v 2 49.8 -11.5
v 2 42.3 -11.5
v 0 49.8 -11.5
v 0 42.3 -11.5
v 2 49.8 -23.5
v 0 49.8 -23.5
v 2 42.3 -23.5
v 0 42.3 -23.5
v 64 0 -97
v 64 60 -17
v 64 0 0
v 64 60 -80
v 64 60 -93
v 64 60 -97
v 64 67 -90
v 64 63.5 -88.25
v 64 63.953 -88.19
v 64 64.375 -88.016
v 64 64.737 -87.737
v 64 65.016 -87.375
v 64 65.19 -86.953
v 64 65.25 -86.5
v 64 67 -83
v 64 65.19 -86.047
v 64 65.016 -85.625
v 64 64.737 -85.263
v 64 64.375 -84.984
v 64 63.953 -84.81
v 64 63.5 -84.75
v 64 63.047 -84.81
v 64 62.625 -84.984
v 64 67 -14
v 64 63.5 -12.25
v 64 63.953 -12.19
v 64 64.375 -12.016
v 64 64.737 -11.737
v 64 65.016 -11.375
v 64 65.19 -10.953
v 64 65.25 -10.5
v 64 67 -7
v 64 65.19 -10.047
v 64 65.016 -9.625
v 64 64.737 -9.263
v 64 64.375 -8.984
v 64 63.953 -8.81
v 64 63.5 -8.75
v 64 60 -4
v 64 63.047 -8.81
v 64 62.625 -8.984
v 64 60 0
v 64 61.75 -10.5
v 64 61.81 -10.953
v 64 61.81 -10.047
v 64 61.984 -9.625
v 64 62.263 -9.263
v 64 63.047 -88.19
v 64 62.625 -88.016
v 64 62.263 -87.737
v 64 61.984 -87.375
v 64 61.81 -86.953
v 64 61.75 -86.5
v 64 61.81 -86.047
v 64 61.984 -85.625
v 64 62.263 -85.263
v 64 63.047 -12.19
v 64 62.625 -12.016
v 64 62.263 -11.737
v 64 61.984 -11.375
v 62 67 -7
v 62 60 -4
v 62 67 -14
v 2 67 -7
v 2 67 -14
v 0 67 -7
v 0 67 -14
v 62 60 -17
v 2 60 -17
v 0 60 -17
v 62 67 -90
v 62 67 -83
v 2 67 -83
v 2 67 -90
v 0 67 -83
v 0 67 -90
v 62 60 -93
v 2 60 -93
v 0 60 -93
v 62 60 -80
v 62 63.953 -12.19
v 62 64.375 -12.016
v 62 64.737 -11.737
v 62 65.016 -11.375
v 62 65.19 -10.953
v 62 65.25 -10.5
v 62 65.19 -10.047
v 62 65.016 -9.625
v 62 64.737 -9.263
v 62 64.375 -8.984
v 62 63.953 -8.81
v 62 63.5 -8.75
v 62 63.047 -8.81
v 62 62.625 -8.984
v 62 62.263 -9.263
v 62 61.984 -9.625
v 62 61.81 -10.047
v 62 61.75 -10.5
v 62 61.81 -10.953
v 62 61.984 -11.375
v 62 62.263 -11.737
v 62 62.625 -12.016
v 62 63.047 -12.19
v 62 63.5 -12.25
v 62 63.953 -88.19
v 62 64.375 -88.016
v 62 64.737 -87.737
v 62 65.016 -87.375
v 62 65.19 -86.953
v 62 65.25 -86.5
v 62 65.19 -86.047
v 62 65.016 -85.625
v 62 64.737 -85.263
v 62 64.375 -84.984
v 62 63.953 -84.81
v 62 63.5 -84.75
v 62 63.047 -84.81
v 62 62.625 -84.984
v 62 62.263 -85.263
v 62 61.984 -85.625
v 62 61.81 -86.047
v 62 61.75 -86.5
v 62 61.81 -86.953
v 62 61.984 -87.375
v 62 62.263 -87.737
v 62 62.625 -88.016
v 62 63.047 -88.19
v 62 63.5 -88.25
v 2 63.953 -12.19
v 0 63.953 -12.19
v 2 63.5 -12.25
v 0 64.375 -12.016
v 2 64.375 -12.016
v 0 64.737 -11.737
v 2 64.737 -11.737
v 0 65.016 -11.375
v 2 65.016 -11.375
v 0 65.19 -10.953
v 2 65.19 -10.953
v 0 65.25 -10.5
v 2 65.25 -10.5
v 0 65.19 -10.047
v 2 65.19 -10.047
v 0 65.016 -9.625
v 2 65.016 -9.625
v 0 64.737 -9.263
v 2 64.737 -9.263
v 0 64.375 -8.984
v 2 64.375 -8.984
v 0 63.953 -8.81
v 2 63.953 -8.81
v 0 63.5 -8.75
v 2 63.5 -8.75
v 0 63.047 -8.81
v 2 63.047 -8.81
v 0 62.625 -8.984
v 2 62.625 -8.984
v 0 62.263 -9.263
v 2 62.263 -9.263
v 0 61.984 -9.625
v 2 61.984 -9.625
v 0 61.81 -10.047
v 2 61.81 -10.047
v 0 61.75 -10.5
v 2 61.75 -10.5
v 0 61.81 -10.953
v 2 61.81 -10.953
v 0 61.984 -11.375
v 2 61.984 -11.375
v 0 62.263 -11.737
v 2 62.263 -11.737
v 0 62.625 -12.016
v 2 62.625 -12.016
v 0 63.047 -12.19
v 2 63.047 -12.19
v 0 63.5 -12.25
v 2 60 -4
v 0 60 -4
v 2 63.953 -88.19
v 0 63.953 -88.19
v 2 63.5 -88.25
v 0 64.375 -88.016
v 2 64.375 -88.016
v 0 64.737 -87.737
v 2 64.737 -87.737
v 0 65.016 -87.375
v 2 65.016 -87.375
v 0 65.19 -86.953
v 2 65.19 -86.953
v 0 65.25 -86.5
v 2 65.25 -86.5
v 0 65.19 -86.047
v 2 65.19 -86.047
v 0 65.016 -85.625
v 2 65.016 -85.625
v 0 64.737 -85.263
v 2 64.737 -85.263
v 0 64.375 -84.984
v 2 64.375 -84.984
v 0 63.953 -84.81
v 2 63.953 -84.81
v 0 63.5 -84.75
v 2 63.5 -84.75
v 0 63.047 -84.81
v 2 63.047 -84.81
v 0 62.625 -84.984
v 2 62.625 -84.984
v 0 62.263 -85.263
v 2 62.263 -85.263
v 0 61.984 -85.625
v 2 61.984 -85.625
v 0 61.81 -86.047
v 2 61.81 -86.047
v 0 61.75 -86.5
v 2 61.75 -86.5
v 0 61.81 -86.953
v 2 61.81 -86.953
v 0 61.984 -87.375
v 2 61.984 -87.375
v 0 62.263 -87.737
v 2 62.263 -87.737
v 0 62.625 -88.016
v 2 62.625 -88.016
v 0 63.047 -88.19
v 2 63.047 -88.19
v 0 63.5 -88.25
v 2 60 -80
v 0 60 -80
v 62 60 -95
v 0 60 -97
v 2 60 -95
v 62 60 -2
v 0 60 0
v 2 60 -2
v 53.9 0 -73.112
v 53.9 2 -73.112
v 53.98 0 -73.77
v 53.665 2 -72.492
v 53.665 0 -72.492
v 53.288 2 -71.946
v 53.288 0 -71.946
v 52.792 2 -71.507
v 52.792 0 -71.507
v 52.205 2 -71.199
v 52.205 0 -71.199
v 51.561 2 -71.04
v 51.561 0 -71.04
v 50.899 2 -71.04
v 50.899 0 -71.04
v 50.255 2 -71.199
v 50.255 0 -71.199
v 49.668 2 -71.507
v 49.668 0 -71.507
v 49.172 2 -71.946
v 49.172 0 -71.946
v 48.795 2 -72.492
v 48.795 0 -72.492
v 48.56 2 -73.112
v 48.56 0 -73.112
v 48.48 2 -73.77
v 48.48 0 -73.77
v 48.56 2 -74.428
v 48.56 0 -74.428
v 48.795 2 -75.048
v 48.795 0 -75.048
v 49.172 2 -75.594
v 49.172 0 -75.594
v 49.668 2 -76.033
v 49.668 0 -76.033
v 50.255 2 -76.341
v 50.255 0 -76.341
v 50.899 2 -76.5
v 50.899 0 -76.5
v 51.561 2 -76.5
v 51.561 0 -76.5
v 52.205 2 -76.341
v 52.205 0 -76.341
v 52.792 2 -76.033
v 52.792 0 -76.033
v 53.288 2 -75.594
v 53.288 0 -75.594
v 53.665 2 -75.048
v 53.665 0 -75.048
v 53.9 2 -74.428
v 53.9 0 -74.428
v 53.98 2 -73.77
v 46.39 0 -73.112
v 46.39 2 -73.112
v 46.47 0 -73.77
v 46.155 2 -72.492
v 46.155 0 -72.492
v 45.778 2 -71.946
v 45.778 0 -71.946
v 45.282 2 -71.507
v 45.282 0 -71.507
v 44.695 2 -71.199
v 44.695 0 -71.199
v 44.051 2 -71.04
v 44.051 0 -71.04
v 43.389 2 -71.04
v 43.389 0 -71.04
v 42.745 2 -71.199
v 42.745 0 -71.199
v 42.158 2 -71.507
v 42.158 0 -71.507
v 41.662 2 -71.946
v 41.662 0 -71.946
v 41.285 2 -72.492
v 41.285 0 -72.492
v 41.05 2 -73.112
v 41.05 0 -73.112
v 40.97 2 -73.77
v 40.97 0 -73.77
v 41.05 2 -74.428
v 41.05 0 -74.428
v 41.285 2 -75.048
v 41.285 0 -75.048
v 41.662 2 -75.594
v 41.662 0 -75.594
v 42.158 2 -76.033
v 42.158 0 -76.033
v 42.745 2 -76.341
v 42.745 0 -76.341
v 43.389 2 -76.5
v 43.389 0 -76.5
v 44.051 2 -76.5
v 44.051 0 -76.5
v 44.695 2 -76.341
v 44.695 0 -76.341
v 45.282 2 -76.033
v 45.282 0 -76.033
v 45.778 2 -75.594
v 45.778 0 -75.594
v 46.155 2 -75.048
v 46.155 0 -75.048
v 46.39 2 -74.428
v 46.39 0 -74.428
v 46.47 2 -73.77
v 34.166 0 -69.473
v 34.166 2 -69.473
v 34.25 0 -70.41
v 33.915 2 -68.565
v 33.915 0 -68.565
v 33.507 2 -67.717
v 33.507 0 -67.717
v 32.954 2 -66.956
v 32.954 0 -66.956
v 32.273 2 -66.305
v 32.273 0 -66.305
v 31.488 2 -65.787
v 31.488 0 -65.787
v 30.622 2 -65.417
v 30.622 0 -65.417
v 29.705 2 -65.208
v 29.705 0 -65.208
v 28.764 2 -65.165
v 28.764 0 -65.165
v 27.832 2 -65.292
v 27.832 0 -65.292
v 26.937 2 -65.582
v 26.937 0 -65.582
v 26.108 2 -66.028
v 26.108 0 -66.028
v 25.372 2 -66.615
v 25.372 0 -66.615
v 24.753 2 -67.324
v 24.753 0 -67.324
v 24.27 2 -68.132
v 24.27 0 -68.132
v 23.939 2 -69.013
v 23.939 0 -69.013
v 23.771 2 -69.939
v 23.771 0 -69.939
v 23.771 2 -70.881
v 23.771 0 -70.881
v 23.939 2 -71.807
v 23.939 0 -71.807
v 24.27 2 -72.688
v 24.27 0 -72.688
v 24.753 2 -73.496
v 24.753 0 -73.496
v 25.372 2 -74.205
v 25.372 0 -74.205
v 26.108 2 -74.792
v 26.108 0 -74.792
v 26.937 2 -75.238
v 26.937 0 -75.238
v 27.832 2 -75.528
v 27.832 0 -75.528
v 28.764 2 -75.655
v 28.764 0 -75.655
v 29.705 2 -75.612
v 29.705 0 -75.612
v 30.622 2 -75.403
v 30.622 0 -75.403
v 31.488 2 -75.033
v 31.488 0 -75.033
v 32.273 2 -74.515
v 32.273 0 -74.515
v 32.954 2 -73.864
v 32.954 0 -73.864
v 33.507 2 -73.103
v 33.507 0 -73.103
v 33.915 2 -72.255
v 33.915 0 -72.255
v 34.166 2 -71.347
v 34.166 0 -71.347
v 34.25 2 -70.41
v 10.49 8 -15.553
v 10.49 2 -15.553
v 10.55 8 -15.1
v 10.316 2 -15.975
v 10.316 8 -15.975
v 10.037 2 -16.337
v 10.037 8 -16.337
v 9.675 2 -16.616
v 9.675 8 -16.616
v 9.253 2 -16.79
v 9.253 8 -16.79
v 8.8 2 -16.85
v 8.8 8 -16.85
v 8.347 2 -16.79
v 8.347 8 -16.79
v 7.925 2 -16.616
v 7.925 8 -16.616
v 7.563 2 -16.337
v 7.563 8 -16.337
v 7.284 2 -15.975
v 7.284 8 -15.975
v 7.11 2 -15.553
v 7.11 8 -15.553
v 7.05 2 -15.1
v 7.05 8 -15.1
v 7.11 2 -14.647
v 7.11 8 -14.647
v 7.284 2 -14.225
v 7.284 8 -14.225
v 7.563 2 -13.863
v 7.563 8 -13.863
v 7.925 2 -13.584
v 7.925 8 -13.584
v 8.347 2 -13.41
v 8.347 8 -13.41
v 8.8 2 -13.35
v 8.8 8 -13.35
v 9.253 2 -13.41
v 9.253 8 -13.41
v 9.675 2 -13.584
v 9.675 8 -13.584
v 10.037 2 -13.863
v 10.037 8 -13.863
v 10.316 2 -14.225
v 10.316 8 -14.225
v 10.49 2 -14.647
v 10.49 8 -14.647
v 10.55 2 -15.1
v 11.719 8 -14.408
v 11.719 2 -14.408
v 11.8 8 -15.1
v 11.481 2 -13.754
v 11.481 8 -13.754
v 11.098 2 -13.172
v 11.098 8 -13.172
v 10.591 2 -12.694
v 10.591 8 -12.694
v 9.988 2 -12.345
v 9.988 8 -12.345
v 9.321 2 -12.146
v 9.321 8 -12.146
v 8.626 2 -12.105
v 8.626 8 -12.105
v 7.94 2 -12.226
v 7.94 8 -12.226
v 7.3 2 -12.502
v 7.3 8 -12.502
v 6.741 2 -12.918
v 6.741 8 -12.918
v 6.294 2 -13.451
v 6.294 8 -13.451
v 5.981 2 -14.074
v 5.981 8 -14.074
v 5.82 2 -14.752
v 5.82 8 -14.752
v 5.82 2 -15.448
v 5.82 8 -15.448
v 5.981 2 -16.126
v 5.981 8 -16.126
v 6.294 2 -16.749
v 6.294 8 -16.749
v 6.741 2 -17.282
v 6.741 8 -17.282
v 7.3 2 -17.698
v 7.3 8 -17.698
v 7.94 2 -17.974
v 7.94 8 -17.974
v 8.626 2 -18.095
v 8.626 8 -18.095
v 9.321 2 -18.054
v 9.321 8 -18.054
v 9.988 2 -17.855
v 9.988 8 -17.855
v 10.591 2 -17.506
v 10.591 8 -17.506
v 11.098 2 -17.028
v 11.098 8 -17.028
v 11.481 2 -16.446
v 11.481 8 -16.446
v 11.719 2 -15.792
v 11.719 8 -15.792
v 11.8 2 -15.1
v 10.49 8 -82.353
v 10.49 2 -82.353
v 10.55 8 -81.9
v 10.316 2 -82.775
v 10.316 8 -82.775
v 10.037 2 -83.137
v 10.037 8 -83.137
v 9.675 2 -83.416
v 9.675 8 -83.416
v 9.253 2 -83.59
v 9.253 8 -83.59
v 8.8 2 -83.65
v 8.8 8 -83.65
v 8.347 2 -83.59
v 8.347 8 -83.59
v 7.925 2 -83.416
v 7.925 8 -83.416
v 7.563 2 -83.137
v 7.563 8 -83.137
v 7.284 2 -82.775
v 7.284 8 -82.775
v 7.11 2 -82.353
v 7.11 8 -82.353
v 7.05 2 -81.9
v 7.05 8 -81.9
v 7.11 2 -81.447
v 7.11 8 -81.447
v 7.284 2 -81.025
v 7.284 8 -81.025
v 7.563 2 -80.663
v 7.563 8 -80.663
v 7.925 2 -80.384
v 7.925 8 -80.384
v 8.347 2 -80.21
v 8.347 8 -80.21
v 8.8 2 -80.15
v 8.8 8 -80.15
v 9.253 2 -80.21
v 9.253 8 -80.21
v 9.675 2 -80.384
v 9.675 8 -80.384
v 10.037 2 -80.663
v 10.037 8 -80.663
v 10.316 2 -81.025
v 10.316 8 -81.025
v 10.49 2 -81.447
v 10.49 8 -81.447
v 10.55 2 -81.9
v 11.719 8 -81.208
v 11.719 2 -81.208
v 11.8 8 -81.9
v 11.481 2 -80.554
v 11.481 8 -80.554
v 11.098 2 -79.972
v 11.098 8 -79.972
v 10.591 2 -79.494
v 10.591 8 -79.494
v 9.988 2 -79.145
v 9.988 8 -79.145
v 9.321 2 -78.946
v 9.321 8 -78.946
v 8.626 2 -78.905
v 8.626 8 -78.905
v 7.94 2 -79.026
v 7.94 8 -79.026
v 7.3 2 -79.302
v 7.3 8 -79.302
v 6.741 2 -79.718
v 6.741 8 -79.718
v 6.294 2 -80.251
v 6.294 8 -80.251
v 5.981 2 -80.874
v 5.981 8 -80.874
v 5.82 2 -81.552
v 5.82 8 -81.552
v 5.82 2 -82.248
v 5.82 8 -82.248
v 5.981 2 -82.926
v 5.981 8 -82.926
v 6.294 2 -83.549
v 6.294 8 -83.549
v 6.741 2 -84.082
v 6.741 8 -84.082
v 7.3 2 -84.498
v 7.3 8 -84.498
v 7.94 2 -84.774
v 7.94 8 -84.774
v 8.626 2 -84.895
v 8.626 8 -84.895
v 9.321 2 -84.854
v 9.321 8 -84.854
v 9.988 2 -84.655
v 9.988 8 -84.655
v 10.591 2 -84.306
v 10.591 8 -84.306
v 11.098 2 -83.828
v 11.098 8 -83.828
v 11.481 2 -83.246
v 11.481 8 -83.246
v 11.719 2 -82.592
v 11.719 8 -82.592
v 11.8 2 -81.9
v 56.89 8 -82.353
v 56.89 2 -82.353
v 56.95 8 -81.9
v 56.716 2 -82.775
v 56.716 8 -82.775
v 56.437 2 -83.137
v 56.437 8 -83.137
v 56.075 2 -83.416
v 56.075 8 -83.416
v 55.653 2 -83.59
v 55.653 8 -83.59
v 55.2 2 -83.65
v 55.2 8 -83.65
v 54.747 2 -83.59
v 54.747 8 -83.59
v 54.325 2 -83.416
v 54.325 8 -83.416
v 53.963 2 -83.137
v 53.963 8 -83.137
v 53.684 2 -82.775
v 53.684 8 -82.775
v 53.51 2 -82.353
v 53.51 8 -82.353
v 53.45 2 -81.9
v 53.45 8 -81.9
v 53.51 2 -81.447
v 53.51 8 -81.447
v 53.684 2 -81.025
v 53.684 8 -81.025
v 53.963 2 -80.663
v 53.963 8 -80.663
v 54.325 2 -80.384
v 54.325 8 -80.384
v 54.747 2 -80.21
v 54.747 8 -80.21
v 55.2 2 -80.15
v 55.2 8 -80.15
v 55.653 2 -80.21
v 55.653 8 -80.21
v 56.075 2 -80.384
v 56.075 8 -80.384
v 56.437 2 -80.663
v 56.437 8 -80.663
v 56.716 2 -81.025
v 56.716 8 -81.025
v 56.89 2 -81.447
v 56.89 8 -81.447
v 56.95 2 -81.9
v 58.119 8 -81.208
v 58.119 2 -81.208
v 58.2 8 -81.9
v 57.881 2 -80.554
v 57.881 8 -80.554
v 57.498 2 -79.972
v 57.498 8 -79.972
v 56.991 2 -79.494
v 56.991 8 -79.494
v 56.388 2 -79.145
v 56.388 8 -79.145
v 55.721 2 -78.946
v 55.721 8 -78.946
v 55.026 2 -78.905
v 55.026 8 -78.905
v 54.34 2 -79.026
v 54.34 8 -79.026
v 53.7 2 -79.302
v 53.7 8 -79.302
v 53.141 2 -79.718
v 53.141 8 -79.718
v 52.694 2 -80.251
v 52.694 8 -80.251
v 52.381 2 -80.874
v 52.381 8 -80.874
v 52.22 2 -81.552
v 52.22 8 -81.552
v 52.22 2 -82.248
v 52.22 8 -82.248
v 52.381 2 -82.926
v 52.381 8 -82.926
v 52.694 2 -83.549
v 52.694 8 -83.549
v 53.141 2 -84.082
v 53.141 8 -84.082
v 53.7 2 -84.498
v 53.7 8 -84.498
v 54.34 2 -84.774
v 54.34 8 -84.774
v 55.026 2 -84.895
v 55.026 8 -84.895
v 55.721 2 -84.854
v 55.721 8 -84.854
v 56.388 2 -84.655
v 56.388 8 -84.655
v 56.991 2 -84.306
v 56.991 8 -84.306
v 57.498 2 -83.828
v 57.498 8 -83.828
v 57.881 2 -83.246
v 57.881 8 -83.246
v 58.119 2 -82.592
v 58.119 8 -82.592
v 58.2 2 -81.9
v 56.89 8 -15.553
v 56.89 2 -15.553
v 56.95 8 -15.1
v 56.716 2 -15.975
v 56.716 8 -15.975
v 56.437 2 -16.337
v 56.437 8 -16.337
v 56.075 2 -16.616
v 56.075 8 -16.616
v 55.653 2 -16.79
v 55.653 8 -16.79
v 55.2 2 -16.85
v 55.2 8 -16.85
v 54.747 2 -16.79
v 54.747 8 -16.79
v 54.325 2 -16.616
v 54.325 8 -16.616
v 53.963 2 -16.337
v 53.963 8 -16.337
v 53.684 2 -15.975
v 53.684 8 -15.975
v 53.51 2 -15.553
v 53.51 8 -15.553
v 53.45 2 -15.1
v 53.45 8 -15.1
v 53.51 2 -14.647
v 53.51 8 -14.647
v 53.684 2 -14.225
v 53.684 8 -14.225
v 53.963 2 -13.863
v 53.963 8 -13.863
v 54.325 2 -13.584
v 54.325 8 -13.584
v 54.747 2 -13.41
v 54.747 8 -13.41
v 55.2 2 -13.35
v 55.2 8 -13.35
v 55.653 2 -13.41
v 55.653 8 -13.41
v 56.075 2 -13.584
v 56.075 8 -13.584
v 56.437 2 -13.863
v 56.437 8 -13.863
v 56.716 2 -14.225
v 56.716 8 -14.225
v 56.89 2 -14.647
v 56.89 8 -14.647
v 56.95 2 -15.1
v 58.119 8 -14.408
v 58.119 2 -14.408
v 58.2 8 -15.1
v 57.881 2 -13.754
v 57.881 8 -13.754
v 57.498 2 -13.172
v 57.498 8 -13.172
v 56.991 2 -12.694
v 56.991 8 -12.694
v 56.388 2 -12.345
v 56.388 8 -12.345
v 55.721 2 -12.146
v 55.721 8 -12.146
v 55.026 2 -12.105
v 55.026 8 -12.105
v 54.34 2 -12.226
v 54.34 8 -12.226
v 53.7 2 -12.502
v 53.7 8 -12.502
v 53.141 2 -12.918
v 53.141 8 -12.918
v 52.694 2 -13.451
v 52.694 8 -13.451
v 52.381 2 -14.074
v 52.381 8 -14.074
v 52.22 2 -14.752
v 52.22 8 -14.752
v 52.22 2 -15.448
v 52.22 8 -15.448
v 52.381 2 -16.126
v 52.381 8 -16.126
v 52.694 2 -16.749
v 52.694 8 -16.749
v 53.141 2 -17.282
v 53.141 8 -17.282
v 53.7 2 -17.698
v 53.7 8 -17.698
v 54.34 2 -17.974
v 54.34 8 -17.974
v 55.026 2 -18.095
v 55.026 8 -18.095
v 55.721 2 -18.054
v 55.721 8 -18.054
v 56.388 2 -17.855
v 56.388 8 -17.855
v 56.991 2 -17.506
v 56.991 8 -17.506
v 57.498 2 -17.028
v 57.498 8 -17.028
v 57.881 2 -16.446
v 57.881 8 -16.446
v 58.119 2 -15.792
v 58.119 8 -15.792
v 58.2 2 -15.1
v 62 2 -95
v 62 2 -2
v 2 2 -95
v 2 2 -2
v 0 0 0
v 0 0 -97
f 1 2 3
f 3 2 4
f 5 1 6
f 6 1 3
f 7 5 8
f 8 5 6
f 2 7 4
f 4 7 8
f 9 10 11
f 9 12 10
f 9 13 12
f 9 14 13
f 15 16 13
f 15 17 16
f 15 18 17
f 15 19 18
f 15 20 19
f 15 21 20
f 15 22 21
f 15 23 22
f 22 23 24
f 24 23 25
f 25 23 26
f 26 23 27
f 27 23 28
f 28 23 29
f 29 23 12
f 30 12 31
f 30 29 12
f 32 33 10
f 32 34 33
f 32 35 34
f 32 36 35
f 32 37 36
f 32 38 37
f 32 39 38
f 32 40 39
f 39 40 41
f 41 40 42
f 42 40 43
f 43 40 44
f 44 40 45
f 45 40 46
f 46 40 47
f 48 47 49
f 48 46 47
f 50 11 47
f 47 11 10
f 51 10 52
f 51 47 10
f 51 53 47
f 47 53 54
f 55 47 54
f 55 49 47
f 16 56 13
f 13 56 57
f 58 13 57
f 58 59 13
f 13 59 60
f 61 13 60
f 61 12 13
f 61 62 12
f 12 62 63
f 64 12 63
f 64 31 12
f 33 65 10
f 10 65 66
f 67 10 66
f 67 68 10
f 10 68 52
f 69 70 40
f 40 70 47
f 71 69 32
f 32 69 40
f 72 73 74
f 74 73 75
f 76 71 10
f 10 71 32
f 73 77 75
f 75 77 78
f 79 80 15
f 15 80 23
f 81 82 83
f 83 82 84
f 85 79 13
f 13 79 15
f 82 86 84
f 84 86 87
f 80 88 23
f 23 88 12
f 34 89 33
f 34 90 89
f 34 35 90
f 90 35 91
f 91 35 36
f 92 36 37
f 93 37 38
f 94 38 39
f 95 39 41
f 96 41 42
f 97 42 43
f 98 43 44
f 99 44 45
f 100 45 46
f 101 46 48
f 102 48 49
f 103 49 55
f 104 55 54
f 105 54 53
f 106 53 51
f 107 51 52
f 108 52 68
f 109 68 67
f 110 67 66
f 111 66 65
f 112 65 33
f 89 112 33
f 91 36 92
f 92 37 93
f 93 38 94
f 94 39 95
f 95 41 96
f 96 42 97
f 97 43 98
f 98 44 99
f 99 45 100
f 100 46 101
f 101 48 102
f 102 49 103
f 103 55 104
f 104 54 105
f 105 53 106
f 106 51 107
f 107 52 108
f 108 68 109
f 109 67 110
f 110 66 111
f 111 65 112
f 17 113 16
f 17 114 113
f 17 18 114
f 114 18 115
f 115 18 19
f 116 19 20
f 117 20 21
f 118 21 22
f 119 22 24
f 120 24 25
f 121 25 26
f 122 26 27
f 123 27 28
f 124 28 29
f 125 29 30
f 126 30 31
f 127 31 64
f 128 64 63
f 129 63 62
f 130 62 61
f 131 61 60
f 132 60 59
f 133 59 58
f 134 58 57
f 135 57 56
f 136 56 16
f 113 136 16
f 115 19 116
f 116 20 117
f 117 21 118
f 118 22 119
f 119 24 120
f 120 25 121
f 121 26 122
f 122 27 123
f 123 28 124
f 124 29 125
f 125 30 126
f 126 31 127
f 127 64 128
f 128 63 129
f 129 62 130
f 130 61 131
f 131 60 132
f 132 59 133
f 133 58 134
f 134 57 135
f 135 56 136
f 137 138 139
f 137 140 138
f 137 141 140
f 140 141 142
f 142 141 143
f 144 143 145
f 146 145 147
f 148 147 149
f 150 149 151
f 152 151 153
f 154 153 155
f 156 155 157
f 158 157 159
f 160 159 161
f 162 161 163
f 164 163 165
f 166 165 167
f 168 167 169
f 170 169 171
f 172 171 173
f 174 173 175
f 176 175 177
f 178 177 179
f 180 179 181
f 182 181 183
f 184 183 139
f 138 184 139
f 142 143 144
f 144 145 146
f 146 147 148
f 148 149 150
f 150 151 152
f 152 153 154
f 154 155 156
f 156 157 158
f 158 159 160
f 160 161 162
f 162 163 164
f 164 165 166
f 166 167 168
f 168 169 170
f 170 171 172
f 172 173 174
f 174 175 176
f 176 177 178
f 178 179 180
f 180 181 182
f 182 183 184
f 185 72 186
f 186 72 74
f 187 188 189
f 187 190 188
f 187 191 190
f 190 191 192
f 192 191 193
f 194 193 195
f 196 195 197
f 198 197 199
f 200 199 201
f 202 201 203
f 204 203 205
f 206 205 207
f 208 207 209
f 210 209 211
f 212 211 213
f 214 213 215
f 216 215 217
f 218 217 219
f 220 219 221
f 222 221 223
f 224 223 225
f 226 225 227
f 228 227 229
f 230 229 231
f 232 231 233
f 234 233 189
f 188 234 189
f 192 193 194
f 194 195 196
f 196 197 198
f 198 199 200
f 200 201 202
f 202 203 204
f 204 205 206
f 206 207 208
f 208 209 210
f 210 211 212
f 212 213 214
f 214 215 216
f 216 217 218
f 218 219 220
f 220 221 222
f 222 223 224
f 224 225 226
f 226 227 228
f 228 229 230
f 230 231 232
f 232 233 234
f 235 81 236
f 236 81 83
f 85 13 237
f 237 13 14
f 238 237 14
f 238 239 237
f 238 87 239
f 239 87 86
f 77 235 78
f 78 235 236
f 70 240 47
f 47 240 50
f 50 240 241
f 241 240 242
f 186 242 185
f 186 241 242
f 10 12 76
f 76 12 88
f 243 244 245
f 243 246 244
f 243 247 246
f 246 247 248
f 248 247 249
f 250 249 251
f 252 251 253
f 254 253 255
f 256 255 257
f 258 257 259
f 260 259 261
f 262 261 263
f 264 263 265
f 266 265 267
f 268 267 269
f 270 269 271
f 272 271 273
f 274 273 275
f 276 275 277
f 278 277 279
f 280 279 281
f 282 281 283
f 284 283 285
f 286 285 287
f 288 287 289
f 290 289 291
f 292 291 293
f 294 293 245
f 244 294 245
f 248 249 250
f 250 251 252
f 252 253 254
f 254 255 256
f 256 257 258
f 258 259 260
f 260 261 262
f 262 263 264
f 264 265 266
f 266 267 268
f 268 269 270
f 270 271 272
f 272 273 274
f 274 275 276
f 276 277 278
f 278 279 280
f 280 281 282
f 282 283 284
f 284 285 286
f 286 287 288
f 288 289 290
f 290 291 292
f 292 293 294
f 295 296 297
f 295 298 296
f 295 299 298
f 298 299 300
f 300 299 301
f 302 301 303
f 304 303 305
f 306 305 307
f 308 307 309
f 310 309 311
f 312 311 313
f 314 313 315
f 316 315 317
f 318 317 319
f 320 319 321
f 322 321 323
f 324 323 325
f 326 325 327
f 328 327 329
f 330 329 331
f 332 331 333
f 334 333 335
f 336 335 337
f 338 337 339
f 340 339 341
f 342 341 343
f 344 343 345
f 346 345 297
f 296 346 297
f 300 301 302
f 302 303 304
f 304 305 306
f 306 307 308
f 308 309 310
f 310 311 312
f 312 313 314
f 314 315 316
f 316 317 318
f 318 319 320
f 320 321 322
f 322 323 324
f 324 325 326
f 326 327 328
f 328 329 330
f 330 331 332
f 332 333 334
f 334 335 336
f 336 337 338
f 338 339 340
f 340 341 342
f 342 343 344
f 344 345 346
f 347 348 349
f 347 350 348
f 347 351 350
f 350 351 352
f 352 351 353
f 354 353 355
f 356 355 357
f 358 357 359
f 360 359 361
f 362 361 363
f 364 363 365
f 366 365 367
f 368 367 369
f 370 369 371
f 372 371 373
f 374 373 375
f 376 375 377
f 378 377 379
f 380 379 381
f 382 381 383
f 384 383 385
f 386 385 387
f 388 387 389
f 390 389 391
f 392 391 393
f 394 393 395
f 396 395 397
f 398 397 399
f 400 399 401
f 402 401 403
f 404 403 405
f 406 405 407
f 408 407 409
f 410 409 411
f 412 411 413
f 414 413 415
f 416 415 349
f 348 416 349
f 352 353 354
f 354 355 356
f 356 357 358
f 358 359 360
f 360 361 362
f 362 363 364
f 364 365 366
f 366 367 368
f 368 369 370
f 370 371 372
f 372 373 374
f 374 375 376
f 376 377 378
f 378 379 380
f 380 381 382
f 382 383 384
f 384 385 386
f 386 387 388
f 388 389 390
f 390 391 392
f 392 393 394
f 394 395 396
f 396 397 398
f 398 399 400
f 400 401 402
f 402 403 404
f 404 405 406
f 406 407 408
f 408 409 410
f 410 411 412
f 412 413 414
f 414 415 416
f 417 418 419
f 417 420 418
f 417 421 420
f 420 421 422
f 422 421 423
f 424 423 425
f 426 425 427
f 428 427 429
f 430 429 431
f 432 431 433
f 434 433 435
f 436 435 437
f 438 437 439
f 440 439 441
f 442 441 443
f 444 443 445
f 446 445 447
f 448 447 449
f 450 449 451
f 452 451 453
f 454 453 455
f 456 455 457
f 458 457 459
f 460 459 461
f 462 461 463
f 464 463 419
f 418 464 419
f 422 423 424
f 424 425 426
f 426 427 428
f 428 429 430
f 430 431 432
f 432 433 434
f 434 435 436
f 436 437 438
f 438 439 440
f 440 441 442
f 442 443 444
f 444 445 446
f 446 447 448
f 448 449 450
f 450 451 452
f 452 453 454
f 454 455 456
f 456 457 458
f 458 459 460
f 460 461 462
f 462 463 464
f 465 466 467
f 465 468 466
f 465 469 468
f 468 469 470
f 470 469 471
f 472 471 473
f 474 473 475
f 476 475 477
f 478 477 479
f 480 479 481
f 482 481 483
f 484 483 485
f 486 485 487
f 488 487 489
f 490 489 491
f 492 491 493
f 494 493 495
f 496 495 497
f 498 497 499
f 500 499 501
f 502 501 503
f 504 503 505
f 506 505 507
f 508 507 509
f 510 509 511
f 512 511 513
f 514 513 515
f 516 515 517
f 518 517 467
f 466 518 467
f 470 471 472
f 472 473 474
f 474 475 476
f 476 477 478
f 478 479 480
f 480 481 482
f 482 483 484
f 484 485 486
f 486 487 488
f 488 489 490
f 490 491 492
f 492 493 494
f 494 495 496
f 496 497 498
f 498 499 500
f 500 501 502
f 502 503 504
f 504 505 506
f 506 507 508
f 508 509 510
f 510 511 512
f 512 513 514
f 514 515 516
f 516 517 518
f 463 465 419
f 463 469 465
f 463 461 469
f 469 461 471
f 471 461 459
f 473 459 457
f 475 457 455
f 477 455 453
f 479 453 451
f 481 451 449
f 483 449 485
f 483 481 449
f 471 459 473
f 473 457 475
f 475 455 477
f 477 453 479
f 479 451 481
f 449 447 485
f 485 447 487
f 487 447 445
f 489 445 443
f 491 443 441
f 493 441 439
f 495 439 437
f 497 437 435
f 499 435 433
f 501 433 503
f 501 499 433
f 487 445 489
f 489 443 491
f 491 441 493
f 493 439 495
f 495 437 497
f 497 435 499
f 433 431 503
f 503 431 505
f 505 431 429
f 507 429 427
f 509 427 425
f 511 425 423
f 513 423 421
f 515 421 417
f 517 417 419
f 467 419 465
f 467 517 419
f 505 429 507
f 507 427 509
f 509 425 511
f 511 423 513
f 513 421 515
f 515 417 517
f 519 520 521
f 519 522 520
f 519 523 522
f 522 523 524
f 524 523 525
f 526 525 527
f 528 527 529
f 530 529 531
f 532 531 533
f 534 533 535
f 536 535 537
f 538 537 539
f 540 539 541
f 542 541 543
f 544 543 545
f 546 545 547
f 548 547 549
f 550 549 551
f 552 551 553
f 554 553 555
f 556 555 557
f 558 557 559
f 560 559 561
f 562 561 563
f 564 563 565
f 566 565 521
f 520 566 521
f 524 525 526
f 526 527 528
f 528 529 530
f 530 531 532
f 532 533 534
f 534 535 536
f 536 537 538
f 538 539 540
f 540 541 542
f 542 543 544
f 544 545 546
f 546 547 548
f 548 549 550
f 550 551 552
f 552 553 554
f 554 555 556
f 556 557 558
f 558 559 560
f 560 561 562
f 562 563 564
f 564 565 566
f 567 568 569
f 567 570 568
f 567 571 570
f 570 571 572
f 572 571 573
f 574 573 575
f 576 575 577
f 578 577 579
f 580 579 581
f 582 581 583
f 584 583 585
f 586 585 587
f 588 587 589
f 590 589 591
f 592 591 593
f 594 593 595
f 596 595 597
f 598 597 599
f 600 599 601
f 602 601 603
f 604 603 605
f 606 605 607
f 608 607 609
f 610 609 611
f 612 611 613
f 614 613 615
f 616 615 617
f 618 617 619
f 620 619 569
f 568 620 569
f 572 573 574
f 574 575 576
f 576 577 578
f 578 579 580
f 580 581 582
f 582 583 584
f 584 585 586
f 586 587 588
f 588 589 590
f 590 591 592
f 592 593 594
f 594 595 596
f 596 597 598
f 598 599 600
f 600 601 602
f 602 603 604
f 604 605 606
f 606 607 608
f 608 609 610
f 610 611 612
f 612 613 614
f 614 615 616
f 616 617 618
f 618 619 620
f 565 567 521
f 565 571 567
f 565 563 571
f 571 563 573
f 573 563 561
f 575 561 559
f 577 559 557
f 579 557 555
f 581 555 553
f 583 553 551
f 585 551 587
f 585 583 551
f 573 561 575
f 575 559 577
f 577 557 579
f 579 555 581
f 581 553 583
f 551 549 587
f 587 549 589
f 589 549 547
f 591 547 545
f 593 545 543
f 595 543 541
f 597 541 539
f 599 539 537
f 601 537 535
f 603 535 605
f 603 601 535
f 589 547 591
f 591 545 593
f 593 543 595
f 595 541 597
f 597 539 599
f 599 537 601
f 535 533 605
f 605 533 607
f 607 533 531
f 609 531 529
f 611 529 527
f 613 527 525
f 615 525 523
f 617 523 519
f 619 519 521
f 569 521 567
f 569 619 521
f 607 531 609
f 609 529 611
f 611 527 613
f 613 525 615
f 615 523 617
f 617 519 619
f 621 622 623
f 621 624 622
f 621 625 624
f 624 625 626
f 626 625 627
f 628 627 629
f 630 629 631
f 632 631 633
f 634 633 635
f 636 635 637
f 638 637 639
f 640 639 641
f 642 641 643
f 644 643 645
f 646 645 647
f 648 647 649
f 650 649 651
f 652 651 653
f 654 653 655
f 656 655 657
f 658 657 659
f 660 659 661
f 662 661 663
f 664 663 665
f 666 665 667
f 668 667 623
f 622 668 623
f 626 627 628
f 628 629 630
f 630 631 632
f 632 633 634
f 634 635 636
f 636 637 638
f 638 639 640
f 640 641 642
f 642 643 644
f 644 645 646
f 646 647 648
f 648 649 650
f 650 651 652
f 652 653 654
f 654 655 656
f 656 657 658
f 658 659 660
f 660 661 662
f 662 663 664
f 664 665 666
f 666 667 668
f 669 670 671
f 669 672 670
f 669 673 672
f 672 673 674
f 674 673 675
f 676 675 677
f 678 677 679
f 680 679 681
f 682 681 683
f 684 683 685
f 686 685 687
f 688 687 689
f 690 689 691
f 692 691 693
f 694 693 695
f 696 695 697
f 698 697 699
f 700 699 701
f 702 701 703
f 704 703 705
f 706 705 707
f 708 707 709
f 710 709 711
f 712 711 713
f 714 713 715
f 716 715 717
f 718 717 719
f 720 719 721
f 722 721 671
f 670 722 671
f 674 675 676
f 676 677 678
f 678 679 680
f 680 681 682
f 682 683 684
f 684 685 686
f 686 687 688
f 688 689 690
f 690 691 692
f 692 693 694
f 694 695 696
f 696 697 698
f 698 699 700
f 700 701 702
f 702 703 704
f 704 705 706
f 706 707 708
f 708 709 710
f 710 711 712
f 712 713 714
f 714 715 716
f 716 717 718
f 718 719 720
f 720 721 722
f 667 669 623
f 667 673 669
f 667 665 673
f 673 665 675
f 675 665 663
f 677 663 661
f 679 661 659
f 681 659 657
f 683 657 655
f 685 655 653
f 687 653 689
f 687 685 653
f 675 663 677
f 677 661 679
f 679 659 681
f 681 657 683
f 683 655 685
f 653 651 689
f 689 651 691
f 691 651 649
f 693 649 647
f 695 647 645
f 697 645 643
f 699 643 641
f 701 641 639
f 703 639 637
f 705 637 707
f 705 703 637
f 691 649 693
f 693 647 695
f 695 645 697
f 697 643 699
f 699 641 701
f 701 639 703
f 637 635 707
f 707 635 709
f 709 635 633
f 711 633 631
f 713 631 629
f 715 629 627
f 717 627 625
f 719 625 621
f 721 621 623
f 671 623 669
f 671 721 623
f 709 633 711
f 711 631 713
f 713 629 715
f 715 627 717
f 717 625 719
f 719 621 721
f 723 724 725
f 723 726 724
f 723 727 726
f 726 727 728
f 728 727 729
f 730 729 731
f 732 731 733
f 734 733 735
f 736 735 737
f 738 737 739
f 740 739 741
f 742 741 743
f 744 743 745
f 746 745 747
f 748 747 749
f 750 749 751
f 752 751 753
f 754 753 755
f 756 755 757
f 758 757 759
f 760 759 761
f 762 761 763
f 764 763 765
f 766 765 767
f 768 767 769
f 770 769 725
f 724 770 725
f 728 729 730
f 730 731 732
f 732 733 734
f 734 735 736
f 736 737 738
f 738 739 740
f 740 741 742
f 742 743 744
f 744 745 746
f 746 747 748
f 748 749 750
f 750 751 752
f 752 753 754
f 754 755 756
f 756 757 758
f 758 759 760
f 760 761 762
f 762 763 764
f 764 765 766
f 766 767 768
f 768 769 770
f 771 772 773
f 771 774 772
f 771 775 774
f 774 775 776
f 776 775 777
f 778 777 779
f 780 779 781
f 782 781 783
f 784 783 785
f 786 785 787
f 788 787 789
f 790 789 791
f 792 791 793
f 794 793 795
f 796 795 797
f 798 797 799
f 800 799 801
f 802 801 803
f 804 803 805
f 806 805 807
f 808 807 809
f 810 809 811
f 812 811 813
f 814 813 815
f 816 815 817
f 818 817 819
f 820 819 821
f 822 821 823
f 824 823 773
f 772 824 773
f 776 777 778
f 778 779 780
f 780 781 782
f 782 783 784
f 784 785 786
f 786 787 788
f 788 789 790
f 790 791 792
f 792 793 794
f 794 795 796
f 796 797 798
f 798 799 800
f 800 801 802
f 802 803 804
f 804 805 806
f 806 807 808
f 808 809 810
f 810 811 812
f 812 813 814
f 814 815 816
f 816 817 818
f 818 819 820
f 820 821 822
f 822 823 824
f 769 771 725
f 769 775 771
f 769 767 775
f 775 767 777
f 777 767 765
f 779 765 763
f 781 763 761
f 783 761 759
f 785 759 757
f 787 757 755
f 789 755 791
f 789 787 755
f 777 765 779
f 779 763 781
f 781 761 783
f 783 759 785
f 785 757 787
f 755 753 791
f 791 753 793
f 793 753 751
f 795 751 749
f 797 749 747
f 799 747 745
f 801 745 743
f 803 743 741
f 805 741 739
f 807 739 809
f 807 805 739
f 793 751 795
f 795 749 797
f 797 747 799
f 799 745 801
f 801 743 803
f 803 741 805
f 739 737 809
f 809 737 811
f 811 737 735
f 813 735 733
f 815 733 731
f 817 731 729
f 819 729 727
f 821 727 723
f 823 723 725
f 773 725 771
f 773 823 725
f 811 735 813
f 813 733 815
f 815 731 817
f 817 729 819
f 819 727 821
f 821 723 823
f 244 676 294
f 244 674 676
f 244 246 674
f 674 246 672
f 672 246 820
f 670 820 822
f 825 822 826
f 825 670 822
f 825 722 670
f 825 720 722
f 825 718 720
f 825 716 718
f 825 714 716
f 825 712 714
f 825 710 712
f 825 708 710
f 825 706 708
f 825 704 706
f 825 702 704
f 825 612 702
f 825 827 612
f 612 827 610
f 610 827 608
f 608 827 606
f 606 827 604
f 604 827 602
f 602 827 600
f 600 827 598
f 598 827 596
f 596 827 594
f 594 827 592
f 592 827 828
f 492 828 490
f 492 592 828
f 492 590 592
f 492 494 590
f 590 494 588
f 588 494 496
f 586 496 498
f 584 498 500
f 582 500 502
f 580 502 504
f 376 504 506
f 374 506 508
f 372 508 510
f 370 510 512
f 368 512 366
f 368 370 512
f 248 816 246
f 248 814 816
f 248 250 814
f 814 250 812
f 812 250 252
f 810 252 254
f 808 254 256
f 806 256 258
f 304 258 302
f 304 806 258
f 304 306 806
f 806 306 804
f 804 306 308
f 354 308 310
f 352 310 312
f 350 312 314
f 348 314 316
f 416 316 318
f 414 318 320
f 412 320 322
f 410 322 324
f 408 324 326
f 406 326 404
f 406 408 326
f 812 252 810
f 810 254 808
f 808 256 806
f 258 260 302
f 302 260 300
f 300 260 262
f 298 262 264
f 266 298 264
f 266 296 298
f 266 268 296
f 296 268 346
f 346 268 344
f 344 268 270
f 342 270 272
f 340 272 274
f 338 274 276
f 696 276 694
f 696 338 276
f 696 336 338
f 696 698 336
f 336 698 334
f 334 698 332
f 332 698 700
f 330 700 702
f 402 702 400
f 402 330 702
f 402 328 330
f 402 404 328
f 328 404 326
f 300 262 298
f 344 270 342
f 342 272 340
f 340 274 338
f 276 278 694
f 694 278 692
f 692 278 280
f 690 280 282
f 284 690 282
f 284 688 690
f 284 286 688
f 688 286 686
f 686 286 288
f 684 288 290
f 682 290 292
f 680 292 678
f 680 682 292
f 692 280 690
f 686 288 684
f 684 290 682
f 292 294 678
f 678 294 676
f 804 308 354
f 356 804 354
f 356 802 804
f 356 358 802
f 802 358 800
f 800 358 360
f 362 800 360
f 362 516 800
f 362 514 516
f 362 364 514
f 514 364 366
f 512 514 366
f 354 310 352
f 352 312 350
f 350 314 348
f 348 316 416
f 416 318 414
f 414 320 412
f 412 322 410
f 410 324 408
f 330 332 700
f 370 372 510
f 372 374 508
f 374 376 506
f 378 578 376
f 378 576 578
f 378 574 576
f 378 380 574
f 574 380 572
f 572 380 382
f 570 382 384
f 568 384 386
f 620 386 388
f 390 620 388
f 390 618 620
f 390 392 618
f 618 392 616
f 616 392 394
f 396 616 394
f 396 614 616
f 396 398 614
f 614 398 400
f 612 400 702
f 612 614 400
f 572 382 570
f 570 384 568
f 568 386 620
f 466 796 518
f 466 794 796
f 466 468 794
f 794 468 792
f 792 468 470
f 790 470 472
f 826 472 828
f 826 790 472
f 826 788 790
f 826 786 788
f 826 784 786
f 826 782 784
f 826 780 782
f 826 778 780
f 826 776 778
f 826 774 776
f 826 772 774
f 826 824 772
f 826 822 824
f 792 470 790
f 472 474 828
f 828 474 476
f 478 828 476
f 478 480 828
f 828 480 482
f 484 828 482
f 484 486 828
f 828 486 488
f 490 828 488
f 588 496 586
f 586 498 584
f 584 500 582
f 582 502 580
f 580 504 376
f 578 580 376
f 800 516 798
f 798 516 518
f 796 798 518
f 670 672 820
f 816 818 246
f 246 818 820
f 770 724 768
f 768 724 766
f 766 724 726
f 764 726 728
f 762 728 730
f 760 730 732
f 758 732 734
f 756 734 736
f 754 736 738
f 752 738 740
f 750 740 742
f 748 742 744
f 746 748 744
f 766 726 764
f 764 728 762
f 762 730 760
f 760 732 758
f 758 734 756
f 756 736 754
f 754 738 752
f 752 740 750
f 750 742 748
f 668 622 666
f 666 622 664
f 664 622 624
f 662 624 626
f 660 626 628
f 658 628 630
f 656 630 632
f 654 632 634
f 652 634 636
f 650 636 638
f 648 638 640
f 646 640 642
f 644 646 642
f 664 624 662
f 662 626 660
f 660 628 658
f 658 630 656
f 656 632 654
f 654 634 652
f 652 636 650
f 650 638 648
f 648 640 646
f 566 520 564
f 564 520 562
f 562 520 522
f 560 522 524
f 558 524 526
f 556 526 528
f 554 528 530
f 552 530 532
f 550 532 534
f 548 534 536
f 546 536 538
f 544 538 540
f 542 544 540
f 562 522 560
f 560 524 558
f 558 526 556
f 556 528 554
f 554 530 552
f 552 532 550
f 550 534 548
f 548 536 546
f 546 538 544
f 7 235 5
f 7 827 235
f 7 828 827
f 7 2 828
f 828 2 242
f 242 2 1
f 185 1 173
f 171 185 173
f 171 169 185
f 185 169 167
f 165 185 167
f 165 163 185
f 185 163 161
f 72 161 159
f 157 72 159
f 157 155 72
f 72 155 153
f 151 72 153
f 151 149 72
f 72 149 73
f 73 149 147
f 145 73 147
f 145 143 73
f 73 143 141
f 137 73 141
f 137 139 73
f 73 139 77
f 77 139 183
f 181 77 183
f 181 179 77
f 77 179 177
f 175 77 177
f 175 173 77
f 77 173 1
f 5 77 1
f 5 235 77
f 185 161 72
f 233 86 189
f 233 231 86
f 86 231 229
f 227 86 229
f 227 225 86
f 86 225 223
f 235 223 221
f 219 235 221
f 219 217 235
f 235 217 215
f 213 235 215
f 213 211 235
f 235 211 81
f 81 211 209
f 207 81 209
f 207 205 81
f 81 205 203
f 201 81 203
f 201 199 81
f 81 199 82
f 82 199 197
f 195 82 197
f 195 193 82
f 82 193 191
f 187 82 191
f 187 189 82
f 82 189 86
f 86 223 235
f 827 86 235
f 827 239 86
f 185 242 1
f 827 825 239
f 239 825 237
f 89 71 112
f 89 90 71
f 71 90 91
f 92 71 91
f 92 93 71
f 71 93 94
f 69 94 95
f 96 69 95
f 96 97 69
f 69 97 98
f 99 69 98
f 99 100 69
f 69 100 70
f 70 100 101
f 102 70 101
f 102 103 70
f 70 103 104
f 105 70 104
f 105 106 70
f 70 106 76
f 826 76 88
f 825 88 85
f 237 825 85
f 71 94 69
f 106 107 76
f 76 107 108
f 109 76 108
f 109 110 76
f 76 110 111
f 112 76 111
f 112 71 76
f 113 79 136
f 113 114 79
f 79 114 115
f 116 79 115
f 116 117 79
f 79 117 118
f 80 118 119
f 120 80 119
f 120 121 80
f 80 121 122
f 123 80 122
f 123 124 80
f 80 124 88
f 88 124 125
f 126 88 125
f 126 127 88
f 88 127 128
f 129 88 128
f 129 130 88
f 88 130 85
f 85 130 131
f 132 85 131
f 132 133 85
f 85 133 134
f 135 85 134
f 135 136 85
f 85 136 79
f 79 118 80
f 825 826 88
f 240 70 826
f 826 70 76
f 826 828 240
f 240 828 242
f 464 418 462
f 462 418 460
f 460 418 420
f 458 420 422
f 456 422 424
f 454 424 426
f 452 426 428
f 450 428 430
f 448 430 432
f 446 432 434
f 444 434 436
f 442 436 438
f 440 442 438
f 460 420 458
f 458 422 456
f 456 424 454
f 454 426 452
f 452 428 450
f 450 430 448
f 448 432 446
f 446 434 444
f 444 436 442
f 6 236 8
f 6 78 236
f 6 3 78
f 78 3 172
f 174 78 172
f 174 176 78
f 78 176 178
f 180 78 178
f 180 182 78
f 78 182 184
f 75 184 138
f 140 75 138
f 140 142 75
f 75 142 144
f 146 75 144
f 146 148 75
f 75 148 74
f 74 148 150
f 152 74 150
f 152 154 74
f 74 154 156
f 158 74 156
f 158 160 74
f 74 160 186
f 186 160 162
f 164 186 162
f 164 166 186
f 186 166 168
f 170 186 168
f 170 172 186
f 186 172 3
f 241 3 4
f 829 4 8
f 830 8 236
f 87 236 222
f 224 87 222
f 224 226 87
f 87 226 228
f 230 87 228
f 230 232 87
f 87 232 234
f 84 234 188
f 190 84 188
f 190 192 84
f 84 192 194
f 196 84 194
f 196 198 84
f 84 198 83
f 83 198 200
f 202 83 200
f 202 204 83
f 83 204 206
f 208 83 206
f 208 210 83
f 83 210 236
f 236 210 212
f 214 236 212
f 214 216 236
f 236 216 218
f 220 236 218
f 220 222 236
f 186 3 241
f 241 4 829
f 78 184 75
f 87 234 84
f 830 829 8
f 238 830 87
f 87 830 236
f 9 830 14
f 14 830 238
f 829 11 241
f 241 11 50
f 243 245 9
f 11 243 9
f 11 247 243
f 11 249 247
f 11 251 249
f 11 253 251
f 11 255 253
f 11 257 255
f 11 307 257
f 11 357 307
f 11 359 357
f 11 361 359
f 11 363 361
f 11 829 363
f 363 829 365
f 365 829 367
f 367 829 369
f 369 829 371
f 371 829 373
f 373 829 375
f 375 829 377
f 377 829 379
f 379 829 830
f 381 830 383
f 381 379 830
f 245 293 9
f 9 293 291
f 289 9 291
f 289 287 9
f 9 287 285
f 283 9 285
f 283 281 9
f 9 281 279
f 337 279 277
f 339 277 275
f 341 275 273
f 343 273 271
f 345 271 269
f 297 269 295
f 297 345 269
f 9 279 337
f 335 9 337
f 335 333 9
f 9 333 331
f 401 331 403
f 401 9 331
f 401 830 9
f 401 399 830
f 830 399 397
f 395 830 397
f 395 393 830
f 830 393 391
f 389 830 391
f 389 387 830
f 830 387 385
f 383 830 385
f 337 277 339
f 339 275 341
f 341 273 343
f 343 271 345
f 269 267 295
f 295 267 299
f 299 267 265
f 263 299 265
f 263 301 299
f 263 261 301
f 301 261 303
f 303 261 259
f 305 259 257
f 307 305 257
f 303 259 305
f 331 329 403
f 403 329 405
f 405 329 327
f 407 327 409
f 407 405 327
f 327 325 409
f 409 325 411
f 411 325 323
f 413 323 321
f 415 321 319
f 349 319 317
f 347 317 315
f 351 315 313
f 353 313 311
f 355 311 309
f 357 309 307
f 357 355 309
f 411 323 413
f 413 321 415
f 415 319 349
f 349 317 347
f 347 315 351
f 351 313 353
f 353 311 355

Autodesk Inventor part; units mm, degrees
ref_plane "YZ Plane" through (0, 0, 0) normal (1, 0, 0) x (0, 1, 0)
ref_plane "XZ Plane" through (0, 0, 0) normal (0, 1, 0) x (-1, 0, 0)
ref_plane "XY Plane" through (0, 0, 0) normal (0, 0, 1) x (1, 0, 0)
sketch "Sketch1" plane through (0, 0, 0) normal (0, 1, 0) x (-1, 0, 0)
  line L0 (0, 0) -> (-64, 0)
  line L1 (-64, 0) -> (-64, -97)
  line L2 (-64, -97) -> (0, -97)
  line L3 (0, -97) -> (0, 0)
  dimension "d1" = 64
  dimension "d2" = 97
extrude "Extrusion1" add sketch "Sketch1" along normal blind 60
shell "Shell1" thickness 2 removed faces 1 at (21.3333, 60, -64.6667)
sketch "Sketch2" plane through (2, 2, -2) normal (0, 1, 0) x (1, 0, 0)
  line L0 (60, 93) -> (0, 93) projected
  line L1 (30, 93) -> (30, 0) construction
  line L2 (60, 0) -> (0, 0) projected
  line L3 (0, 0) -> (0, 93) projected
  line L4 (0, 46.5) -> (60, 46.5) construction
  line L5 (60, 0) -> (60, 93) projected
  circle A0 centre (6.8, 79.9) radius 3
  circle A1 centre (6.8, 79.9) radius 1.75
  circle A2 centre (53.2, 79.9) radius 3
  circle A3 centre (53.2, 79.9) radius 1.75
  circle A4 centre (6.8, 13.1) radius 3
  circle A5 centre (6.8, 13.1) radius 1.75
  circle A6 centre (53.2, 13.1) radius 3
  circle A7 centre (53.2, 13.1) radius 1.75
  point P0 (-2, -2)
  dimension "d6" = 6
  dimension "d7" = 1.25
  dimension "d8" = 23.2
  dimension "d9" = 33.4
extrude "Extrusion2" add sketch "Sketch2" along normal blind 6 contours A0 | A2 | A4 | A6
sketch "Sketch3" plane through (2, 2, -2) normal (0, 1, 0) x (1, 0, 0)
  circle A0 centre (53.2, 79.9) radius 1.75 projected
  circle A1 centre (27, 68.41) radius 5.25
  circle A2 centre (41.72, 71.77) radius 2.75
  circle A3 centre (49.23, 71.77) radius 2.75
  point P0 (-2, -2)
  dimension "d12" = 11.49
  dimension "d13" = 26.2
  dimension "d14" = 10.5
  dimension "d15" = 0
  dimension "d16" = 5.5
  dimension "d17" = 5.5
  dimension "d18" = 3.97
  dimension "d19" = 8.13
  dimension "d20" = 7.51
extrude "Extrusion3" cut sketch "Sketch3" against normal through all contours A1 | A2 | A3
sketch "Sketch4" plane through (64, 0, 0) normal (1, 0, 0) x (0, 0, -1)
  line L0 (0, 0) -> (97, 0) projected
  line L1 (48.5, 0) -> (48.5, 60) construction
  line L2 (95, 60) -> (2, 60) projected
  line L3 (4, 60) -> (17, 60)
  line L4 (14, 67) -> (7, 67)
  line L5 (0, 0) -> (0, 60) projected
  line L6 (4, 60) -> (7, 67)
  line L7 (17, 60) -> (14, 67)
  circle A0 centre (10.5, 63.5) radius 1.75
  line L8 (83, 67) -> (90, 67)
  line L9 (93, 60) -> (90, 67)
  line L10 (80, 60) -> (83, 67)
  circle A1 centre (86.5, 63.5) radius 1.75
  line L11 (80, 60) -> (93, 60)
  dimension "d28" = 7
  dimension "d29" = 4
  dimension "d30" = 13
  dimension "d31" = 7
  dimension "d32" = 3
  dimension "d33" = 3.5
  dimension "d34" = 3.5
  dimension "d35" = 6.5
extrude "Extrusion4" add sketch "Sketch4" against normal blind 64
sketch "Sketch5" plane through (0, 60, 0) normal (0, 1, 0) x (1, 0, 0)
  line L0 (62, 2) -> (2, 2) projected
  line L1 (2, 93) -> (2, 95) projected
  line L2 (62, 2) -> (2, 2)
  line L3 (2, 2) -> (2, 95)
  line L4 (2, 95) -> (62, 95)
  line L5 (62, 95) -> (62, 2)
  point P0 (0, 0)
extrude "Extrusion5" cut sketch "Sketch5" along normal through all
sketch "Sketch6" plane through (0, 0, -97) normal (-1, 0, 0) x (0, 0, 1)
  line L0 (2, 2) -> (2, 60) projected
  line L1 (17, 60) -> (80, 60) projected
  line L2 (85.5, 49.8) -> (73.5, 49.8)
  line L3 (73.5, 49.8) -> (73.5, 42.3)
  line L4 (73.5, 42.3) -> (85.5, 42.3)
  line L5 (85.5, 42.3) -> (85.5, 49.8)
  line L6 (97, 0) -> (97, 60) projected
  dimension "d48" = 7.5
  dimension "d49" = 10.2
  dimension "d51" = 11.5
  dimension "d52" = 23.5
extrude "Extrusion6" cut sketch "Sketch6" against normal up to next
properties part number "Housing for Filter"
